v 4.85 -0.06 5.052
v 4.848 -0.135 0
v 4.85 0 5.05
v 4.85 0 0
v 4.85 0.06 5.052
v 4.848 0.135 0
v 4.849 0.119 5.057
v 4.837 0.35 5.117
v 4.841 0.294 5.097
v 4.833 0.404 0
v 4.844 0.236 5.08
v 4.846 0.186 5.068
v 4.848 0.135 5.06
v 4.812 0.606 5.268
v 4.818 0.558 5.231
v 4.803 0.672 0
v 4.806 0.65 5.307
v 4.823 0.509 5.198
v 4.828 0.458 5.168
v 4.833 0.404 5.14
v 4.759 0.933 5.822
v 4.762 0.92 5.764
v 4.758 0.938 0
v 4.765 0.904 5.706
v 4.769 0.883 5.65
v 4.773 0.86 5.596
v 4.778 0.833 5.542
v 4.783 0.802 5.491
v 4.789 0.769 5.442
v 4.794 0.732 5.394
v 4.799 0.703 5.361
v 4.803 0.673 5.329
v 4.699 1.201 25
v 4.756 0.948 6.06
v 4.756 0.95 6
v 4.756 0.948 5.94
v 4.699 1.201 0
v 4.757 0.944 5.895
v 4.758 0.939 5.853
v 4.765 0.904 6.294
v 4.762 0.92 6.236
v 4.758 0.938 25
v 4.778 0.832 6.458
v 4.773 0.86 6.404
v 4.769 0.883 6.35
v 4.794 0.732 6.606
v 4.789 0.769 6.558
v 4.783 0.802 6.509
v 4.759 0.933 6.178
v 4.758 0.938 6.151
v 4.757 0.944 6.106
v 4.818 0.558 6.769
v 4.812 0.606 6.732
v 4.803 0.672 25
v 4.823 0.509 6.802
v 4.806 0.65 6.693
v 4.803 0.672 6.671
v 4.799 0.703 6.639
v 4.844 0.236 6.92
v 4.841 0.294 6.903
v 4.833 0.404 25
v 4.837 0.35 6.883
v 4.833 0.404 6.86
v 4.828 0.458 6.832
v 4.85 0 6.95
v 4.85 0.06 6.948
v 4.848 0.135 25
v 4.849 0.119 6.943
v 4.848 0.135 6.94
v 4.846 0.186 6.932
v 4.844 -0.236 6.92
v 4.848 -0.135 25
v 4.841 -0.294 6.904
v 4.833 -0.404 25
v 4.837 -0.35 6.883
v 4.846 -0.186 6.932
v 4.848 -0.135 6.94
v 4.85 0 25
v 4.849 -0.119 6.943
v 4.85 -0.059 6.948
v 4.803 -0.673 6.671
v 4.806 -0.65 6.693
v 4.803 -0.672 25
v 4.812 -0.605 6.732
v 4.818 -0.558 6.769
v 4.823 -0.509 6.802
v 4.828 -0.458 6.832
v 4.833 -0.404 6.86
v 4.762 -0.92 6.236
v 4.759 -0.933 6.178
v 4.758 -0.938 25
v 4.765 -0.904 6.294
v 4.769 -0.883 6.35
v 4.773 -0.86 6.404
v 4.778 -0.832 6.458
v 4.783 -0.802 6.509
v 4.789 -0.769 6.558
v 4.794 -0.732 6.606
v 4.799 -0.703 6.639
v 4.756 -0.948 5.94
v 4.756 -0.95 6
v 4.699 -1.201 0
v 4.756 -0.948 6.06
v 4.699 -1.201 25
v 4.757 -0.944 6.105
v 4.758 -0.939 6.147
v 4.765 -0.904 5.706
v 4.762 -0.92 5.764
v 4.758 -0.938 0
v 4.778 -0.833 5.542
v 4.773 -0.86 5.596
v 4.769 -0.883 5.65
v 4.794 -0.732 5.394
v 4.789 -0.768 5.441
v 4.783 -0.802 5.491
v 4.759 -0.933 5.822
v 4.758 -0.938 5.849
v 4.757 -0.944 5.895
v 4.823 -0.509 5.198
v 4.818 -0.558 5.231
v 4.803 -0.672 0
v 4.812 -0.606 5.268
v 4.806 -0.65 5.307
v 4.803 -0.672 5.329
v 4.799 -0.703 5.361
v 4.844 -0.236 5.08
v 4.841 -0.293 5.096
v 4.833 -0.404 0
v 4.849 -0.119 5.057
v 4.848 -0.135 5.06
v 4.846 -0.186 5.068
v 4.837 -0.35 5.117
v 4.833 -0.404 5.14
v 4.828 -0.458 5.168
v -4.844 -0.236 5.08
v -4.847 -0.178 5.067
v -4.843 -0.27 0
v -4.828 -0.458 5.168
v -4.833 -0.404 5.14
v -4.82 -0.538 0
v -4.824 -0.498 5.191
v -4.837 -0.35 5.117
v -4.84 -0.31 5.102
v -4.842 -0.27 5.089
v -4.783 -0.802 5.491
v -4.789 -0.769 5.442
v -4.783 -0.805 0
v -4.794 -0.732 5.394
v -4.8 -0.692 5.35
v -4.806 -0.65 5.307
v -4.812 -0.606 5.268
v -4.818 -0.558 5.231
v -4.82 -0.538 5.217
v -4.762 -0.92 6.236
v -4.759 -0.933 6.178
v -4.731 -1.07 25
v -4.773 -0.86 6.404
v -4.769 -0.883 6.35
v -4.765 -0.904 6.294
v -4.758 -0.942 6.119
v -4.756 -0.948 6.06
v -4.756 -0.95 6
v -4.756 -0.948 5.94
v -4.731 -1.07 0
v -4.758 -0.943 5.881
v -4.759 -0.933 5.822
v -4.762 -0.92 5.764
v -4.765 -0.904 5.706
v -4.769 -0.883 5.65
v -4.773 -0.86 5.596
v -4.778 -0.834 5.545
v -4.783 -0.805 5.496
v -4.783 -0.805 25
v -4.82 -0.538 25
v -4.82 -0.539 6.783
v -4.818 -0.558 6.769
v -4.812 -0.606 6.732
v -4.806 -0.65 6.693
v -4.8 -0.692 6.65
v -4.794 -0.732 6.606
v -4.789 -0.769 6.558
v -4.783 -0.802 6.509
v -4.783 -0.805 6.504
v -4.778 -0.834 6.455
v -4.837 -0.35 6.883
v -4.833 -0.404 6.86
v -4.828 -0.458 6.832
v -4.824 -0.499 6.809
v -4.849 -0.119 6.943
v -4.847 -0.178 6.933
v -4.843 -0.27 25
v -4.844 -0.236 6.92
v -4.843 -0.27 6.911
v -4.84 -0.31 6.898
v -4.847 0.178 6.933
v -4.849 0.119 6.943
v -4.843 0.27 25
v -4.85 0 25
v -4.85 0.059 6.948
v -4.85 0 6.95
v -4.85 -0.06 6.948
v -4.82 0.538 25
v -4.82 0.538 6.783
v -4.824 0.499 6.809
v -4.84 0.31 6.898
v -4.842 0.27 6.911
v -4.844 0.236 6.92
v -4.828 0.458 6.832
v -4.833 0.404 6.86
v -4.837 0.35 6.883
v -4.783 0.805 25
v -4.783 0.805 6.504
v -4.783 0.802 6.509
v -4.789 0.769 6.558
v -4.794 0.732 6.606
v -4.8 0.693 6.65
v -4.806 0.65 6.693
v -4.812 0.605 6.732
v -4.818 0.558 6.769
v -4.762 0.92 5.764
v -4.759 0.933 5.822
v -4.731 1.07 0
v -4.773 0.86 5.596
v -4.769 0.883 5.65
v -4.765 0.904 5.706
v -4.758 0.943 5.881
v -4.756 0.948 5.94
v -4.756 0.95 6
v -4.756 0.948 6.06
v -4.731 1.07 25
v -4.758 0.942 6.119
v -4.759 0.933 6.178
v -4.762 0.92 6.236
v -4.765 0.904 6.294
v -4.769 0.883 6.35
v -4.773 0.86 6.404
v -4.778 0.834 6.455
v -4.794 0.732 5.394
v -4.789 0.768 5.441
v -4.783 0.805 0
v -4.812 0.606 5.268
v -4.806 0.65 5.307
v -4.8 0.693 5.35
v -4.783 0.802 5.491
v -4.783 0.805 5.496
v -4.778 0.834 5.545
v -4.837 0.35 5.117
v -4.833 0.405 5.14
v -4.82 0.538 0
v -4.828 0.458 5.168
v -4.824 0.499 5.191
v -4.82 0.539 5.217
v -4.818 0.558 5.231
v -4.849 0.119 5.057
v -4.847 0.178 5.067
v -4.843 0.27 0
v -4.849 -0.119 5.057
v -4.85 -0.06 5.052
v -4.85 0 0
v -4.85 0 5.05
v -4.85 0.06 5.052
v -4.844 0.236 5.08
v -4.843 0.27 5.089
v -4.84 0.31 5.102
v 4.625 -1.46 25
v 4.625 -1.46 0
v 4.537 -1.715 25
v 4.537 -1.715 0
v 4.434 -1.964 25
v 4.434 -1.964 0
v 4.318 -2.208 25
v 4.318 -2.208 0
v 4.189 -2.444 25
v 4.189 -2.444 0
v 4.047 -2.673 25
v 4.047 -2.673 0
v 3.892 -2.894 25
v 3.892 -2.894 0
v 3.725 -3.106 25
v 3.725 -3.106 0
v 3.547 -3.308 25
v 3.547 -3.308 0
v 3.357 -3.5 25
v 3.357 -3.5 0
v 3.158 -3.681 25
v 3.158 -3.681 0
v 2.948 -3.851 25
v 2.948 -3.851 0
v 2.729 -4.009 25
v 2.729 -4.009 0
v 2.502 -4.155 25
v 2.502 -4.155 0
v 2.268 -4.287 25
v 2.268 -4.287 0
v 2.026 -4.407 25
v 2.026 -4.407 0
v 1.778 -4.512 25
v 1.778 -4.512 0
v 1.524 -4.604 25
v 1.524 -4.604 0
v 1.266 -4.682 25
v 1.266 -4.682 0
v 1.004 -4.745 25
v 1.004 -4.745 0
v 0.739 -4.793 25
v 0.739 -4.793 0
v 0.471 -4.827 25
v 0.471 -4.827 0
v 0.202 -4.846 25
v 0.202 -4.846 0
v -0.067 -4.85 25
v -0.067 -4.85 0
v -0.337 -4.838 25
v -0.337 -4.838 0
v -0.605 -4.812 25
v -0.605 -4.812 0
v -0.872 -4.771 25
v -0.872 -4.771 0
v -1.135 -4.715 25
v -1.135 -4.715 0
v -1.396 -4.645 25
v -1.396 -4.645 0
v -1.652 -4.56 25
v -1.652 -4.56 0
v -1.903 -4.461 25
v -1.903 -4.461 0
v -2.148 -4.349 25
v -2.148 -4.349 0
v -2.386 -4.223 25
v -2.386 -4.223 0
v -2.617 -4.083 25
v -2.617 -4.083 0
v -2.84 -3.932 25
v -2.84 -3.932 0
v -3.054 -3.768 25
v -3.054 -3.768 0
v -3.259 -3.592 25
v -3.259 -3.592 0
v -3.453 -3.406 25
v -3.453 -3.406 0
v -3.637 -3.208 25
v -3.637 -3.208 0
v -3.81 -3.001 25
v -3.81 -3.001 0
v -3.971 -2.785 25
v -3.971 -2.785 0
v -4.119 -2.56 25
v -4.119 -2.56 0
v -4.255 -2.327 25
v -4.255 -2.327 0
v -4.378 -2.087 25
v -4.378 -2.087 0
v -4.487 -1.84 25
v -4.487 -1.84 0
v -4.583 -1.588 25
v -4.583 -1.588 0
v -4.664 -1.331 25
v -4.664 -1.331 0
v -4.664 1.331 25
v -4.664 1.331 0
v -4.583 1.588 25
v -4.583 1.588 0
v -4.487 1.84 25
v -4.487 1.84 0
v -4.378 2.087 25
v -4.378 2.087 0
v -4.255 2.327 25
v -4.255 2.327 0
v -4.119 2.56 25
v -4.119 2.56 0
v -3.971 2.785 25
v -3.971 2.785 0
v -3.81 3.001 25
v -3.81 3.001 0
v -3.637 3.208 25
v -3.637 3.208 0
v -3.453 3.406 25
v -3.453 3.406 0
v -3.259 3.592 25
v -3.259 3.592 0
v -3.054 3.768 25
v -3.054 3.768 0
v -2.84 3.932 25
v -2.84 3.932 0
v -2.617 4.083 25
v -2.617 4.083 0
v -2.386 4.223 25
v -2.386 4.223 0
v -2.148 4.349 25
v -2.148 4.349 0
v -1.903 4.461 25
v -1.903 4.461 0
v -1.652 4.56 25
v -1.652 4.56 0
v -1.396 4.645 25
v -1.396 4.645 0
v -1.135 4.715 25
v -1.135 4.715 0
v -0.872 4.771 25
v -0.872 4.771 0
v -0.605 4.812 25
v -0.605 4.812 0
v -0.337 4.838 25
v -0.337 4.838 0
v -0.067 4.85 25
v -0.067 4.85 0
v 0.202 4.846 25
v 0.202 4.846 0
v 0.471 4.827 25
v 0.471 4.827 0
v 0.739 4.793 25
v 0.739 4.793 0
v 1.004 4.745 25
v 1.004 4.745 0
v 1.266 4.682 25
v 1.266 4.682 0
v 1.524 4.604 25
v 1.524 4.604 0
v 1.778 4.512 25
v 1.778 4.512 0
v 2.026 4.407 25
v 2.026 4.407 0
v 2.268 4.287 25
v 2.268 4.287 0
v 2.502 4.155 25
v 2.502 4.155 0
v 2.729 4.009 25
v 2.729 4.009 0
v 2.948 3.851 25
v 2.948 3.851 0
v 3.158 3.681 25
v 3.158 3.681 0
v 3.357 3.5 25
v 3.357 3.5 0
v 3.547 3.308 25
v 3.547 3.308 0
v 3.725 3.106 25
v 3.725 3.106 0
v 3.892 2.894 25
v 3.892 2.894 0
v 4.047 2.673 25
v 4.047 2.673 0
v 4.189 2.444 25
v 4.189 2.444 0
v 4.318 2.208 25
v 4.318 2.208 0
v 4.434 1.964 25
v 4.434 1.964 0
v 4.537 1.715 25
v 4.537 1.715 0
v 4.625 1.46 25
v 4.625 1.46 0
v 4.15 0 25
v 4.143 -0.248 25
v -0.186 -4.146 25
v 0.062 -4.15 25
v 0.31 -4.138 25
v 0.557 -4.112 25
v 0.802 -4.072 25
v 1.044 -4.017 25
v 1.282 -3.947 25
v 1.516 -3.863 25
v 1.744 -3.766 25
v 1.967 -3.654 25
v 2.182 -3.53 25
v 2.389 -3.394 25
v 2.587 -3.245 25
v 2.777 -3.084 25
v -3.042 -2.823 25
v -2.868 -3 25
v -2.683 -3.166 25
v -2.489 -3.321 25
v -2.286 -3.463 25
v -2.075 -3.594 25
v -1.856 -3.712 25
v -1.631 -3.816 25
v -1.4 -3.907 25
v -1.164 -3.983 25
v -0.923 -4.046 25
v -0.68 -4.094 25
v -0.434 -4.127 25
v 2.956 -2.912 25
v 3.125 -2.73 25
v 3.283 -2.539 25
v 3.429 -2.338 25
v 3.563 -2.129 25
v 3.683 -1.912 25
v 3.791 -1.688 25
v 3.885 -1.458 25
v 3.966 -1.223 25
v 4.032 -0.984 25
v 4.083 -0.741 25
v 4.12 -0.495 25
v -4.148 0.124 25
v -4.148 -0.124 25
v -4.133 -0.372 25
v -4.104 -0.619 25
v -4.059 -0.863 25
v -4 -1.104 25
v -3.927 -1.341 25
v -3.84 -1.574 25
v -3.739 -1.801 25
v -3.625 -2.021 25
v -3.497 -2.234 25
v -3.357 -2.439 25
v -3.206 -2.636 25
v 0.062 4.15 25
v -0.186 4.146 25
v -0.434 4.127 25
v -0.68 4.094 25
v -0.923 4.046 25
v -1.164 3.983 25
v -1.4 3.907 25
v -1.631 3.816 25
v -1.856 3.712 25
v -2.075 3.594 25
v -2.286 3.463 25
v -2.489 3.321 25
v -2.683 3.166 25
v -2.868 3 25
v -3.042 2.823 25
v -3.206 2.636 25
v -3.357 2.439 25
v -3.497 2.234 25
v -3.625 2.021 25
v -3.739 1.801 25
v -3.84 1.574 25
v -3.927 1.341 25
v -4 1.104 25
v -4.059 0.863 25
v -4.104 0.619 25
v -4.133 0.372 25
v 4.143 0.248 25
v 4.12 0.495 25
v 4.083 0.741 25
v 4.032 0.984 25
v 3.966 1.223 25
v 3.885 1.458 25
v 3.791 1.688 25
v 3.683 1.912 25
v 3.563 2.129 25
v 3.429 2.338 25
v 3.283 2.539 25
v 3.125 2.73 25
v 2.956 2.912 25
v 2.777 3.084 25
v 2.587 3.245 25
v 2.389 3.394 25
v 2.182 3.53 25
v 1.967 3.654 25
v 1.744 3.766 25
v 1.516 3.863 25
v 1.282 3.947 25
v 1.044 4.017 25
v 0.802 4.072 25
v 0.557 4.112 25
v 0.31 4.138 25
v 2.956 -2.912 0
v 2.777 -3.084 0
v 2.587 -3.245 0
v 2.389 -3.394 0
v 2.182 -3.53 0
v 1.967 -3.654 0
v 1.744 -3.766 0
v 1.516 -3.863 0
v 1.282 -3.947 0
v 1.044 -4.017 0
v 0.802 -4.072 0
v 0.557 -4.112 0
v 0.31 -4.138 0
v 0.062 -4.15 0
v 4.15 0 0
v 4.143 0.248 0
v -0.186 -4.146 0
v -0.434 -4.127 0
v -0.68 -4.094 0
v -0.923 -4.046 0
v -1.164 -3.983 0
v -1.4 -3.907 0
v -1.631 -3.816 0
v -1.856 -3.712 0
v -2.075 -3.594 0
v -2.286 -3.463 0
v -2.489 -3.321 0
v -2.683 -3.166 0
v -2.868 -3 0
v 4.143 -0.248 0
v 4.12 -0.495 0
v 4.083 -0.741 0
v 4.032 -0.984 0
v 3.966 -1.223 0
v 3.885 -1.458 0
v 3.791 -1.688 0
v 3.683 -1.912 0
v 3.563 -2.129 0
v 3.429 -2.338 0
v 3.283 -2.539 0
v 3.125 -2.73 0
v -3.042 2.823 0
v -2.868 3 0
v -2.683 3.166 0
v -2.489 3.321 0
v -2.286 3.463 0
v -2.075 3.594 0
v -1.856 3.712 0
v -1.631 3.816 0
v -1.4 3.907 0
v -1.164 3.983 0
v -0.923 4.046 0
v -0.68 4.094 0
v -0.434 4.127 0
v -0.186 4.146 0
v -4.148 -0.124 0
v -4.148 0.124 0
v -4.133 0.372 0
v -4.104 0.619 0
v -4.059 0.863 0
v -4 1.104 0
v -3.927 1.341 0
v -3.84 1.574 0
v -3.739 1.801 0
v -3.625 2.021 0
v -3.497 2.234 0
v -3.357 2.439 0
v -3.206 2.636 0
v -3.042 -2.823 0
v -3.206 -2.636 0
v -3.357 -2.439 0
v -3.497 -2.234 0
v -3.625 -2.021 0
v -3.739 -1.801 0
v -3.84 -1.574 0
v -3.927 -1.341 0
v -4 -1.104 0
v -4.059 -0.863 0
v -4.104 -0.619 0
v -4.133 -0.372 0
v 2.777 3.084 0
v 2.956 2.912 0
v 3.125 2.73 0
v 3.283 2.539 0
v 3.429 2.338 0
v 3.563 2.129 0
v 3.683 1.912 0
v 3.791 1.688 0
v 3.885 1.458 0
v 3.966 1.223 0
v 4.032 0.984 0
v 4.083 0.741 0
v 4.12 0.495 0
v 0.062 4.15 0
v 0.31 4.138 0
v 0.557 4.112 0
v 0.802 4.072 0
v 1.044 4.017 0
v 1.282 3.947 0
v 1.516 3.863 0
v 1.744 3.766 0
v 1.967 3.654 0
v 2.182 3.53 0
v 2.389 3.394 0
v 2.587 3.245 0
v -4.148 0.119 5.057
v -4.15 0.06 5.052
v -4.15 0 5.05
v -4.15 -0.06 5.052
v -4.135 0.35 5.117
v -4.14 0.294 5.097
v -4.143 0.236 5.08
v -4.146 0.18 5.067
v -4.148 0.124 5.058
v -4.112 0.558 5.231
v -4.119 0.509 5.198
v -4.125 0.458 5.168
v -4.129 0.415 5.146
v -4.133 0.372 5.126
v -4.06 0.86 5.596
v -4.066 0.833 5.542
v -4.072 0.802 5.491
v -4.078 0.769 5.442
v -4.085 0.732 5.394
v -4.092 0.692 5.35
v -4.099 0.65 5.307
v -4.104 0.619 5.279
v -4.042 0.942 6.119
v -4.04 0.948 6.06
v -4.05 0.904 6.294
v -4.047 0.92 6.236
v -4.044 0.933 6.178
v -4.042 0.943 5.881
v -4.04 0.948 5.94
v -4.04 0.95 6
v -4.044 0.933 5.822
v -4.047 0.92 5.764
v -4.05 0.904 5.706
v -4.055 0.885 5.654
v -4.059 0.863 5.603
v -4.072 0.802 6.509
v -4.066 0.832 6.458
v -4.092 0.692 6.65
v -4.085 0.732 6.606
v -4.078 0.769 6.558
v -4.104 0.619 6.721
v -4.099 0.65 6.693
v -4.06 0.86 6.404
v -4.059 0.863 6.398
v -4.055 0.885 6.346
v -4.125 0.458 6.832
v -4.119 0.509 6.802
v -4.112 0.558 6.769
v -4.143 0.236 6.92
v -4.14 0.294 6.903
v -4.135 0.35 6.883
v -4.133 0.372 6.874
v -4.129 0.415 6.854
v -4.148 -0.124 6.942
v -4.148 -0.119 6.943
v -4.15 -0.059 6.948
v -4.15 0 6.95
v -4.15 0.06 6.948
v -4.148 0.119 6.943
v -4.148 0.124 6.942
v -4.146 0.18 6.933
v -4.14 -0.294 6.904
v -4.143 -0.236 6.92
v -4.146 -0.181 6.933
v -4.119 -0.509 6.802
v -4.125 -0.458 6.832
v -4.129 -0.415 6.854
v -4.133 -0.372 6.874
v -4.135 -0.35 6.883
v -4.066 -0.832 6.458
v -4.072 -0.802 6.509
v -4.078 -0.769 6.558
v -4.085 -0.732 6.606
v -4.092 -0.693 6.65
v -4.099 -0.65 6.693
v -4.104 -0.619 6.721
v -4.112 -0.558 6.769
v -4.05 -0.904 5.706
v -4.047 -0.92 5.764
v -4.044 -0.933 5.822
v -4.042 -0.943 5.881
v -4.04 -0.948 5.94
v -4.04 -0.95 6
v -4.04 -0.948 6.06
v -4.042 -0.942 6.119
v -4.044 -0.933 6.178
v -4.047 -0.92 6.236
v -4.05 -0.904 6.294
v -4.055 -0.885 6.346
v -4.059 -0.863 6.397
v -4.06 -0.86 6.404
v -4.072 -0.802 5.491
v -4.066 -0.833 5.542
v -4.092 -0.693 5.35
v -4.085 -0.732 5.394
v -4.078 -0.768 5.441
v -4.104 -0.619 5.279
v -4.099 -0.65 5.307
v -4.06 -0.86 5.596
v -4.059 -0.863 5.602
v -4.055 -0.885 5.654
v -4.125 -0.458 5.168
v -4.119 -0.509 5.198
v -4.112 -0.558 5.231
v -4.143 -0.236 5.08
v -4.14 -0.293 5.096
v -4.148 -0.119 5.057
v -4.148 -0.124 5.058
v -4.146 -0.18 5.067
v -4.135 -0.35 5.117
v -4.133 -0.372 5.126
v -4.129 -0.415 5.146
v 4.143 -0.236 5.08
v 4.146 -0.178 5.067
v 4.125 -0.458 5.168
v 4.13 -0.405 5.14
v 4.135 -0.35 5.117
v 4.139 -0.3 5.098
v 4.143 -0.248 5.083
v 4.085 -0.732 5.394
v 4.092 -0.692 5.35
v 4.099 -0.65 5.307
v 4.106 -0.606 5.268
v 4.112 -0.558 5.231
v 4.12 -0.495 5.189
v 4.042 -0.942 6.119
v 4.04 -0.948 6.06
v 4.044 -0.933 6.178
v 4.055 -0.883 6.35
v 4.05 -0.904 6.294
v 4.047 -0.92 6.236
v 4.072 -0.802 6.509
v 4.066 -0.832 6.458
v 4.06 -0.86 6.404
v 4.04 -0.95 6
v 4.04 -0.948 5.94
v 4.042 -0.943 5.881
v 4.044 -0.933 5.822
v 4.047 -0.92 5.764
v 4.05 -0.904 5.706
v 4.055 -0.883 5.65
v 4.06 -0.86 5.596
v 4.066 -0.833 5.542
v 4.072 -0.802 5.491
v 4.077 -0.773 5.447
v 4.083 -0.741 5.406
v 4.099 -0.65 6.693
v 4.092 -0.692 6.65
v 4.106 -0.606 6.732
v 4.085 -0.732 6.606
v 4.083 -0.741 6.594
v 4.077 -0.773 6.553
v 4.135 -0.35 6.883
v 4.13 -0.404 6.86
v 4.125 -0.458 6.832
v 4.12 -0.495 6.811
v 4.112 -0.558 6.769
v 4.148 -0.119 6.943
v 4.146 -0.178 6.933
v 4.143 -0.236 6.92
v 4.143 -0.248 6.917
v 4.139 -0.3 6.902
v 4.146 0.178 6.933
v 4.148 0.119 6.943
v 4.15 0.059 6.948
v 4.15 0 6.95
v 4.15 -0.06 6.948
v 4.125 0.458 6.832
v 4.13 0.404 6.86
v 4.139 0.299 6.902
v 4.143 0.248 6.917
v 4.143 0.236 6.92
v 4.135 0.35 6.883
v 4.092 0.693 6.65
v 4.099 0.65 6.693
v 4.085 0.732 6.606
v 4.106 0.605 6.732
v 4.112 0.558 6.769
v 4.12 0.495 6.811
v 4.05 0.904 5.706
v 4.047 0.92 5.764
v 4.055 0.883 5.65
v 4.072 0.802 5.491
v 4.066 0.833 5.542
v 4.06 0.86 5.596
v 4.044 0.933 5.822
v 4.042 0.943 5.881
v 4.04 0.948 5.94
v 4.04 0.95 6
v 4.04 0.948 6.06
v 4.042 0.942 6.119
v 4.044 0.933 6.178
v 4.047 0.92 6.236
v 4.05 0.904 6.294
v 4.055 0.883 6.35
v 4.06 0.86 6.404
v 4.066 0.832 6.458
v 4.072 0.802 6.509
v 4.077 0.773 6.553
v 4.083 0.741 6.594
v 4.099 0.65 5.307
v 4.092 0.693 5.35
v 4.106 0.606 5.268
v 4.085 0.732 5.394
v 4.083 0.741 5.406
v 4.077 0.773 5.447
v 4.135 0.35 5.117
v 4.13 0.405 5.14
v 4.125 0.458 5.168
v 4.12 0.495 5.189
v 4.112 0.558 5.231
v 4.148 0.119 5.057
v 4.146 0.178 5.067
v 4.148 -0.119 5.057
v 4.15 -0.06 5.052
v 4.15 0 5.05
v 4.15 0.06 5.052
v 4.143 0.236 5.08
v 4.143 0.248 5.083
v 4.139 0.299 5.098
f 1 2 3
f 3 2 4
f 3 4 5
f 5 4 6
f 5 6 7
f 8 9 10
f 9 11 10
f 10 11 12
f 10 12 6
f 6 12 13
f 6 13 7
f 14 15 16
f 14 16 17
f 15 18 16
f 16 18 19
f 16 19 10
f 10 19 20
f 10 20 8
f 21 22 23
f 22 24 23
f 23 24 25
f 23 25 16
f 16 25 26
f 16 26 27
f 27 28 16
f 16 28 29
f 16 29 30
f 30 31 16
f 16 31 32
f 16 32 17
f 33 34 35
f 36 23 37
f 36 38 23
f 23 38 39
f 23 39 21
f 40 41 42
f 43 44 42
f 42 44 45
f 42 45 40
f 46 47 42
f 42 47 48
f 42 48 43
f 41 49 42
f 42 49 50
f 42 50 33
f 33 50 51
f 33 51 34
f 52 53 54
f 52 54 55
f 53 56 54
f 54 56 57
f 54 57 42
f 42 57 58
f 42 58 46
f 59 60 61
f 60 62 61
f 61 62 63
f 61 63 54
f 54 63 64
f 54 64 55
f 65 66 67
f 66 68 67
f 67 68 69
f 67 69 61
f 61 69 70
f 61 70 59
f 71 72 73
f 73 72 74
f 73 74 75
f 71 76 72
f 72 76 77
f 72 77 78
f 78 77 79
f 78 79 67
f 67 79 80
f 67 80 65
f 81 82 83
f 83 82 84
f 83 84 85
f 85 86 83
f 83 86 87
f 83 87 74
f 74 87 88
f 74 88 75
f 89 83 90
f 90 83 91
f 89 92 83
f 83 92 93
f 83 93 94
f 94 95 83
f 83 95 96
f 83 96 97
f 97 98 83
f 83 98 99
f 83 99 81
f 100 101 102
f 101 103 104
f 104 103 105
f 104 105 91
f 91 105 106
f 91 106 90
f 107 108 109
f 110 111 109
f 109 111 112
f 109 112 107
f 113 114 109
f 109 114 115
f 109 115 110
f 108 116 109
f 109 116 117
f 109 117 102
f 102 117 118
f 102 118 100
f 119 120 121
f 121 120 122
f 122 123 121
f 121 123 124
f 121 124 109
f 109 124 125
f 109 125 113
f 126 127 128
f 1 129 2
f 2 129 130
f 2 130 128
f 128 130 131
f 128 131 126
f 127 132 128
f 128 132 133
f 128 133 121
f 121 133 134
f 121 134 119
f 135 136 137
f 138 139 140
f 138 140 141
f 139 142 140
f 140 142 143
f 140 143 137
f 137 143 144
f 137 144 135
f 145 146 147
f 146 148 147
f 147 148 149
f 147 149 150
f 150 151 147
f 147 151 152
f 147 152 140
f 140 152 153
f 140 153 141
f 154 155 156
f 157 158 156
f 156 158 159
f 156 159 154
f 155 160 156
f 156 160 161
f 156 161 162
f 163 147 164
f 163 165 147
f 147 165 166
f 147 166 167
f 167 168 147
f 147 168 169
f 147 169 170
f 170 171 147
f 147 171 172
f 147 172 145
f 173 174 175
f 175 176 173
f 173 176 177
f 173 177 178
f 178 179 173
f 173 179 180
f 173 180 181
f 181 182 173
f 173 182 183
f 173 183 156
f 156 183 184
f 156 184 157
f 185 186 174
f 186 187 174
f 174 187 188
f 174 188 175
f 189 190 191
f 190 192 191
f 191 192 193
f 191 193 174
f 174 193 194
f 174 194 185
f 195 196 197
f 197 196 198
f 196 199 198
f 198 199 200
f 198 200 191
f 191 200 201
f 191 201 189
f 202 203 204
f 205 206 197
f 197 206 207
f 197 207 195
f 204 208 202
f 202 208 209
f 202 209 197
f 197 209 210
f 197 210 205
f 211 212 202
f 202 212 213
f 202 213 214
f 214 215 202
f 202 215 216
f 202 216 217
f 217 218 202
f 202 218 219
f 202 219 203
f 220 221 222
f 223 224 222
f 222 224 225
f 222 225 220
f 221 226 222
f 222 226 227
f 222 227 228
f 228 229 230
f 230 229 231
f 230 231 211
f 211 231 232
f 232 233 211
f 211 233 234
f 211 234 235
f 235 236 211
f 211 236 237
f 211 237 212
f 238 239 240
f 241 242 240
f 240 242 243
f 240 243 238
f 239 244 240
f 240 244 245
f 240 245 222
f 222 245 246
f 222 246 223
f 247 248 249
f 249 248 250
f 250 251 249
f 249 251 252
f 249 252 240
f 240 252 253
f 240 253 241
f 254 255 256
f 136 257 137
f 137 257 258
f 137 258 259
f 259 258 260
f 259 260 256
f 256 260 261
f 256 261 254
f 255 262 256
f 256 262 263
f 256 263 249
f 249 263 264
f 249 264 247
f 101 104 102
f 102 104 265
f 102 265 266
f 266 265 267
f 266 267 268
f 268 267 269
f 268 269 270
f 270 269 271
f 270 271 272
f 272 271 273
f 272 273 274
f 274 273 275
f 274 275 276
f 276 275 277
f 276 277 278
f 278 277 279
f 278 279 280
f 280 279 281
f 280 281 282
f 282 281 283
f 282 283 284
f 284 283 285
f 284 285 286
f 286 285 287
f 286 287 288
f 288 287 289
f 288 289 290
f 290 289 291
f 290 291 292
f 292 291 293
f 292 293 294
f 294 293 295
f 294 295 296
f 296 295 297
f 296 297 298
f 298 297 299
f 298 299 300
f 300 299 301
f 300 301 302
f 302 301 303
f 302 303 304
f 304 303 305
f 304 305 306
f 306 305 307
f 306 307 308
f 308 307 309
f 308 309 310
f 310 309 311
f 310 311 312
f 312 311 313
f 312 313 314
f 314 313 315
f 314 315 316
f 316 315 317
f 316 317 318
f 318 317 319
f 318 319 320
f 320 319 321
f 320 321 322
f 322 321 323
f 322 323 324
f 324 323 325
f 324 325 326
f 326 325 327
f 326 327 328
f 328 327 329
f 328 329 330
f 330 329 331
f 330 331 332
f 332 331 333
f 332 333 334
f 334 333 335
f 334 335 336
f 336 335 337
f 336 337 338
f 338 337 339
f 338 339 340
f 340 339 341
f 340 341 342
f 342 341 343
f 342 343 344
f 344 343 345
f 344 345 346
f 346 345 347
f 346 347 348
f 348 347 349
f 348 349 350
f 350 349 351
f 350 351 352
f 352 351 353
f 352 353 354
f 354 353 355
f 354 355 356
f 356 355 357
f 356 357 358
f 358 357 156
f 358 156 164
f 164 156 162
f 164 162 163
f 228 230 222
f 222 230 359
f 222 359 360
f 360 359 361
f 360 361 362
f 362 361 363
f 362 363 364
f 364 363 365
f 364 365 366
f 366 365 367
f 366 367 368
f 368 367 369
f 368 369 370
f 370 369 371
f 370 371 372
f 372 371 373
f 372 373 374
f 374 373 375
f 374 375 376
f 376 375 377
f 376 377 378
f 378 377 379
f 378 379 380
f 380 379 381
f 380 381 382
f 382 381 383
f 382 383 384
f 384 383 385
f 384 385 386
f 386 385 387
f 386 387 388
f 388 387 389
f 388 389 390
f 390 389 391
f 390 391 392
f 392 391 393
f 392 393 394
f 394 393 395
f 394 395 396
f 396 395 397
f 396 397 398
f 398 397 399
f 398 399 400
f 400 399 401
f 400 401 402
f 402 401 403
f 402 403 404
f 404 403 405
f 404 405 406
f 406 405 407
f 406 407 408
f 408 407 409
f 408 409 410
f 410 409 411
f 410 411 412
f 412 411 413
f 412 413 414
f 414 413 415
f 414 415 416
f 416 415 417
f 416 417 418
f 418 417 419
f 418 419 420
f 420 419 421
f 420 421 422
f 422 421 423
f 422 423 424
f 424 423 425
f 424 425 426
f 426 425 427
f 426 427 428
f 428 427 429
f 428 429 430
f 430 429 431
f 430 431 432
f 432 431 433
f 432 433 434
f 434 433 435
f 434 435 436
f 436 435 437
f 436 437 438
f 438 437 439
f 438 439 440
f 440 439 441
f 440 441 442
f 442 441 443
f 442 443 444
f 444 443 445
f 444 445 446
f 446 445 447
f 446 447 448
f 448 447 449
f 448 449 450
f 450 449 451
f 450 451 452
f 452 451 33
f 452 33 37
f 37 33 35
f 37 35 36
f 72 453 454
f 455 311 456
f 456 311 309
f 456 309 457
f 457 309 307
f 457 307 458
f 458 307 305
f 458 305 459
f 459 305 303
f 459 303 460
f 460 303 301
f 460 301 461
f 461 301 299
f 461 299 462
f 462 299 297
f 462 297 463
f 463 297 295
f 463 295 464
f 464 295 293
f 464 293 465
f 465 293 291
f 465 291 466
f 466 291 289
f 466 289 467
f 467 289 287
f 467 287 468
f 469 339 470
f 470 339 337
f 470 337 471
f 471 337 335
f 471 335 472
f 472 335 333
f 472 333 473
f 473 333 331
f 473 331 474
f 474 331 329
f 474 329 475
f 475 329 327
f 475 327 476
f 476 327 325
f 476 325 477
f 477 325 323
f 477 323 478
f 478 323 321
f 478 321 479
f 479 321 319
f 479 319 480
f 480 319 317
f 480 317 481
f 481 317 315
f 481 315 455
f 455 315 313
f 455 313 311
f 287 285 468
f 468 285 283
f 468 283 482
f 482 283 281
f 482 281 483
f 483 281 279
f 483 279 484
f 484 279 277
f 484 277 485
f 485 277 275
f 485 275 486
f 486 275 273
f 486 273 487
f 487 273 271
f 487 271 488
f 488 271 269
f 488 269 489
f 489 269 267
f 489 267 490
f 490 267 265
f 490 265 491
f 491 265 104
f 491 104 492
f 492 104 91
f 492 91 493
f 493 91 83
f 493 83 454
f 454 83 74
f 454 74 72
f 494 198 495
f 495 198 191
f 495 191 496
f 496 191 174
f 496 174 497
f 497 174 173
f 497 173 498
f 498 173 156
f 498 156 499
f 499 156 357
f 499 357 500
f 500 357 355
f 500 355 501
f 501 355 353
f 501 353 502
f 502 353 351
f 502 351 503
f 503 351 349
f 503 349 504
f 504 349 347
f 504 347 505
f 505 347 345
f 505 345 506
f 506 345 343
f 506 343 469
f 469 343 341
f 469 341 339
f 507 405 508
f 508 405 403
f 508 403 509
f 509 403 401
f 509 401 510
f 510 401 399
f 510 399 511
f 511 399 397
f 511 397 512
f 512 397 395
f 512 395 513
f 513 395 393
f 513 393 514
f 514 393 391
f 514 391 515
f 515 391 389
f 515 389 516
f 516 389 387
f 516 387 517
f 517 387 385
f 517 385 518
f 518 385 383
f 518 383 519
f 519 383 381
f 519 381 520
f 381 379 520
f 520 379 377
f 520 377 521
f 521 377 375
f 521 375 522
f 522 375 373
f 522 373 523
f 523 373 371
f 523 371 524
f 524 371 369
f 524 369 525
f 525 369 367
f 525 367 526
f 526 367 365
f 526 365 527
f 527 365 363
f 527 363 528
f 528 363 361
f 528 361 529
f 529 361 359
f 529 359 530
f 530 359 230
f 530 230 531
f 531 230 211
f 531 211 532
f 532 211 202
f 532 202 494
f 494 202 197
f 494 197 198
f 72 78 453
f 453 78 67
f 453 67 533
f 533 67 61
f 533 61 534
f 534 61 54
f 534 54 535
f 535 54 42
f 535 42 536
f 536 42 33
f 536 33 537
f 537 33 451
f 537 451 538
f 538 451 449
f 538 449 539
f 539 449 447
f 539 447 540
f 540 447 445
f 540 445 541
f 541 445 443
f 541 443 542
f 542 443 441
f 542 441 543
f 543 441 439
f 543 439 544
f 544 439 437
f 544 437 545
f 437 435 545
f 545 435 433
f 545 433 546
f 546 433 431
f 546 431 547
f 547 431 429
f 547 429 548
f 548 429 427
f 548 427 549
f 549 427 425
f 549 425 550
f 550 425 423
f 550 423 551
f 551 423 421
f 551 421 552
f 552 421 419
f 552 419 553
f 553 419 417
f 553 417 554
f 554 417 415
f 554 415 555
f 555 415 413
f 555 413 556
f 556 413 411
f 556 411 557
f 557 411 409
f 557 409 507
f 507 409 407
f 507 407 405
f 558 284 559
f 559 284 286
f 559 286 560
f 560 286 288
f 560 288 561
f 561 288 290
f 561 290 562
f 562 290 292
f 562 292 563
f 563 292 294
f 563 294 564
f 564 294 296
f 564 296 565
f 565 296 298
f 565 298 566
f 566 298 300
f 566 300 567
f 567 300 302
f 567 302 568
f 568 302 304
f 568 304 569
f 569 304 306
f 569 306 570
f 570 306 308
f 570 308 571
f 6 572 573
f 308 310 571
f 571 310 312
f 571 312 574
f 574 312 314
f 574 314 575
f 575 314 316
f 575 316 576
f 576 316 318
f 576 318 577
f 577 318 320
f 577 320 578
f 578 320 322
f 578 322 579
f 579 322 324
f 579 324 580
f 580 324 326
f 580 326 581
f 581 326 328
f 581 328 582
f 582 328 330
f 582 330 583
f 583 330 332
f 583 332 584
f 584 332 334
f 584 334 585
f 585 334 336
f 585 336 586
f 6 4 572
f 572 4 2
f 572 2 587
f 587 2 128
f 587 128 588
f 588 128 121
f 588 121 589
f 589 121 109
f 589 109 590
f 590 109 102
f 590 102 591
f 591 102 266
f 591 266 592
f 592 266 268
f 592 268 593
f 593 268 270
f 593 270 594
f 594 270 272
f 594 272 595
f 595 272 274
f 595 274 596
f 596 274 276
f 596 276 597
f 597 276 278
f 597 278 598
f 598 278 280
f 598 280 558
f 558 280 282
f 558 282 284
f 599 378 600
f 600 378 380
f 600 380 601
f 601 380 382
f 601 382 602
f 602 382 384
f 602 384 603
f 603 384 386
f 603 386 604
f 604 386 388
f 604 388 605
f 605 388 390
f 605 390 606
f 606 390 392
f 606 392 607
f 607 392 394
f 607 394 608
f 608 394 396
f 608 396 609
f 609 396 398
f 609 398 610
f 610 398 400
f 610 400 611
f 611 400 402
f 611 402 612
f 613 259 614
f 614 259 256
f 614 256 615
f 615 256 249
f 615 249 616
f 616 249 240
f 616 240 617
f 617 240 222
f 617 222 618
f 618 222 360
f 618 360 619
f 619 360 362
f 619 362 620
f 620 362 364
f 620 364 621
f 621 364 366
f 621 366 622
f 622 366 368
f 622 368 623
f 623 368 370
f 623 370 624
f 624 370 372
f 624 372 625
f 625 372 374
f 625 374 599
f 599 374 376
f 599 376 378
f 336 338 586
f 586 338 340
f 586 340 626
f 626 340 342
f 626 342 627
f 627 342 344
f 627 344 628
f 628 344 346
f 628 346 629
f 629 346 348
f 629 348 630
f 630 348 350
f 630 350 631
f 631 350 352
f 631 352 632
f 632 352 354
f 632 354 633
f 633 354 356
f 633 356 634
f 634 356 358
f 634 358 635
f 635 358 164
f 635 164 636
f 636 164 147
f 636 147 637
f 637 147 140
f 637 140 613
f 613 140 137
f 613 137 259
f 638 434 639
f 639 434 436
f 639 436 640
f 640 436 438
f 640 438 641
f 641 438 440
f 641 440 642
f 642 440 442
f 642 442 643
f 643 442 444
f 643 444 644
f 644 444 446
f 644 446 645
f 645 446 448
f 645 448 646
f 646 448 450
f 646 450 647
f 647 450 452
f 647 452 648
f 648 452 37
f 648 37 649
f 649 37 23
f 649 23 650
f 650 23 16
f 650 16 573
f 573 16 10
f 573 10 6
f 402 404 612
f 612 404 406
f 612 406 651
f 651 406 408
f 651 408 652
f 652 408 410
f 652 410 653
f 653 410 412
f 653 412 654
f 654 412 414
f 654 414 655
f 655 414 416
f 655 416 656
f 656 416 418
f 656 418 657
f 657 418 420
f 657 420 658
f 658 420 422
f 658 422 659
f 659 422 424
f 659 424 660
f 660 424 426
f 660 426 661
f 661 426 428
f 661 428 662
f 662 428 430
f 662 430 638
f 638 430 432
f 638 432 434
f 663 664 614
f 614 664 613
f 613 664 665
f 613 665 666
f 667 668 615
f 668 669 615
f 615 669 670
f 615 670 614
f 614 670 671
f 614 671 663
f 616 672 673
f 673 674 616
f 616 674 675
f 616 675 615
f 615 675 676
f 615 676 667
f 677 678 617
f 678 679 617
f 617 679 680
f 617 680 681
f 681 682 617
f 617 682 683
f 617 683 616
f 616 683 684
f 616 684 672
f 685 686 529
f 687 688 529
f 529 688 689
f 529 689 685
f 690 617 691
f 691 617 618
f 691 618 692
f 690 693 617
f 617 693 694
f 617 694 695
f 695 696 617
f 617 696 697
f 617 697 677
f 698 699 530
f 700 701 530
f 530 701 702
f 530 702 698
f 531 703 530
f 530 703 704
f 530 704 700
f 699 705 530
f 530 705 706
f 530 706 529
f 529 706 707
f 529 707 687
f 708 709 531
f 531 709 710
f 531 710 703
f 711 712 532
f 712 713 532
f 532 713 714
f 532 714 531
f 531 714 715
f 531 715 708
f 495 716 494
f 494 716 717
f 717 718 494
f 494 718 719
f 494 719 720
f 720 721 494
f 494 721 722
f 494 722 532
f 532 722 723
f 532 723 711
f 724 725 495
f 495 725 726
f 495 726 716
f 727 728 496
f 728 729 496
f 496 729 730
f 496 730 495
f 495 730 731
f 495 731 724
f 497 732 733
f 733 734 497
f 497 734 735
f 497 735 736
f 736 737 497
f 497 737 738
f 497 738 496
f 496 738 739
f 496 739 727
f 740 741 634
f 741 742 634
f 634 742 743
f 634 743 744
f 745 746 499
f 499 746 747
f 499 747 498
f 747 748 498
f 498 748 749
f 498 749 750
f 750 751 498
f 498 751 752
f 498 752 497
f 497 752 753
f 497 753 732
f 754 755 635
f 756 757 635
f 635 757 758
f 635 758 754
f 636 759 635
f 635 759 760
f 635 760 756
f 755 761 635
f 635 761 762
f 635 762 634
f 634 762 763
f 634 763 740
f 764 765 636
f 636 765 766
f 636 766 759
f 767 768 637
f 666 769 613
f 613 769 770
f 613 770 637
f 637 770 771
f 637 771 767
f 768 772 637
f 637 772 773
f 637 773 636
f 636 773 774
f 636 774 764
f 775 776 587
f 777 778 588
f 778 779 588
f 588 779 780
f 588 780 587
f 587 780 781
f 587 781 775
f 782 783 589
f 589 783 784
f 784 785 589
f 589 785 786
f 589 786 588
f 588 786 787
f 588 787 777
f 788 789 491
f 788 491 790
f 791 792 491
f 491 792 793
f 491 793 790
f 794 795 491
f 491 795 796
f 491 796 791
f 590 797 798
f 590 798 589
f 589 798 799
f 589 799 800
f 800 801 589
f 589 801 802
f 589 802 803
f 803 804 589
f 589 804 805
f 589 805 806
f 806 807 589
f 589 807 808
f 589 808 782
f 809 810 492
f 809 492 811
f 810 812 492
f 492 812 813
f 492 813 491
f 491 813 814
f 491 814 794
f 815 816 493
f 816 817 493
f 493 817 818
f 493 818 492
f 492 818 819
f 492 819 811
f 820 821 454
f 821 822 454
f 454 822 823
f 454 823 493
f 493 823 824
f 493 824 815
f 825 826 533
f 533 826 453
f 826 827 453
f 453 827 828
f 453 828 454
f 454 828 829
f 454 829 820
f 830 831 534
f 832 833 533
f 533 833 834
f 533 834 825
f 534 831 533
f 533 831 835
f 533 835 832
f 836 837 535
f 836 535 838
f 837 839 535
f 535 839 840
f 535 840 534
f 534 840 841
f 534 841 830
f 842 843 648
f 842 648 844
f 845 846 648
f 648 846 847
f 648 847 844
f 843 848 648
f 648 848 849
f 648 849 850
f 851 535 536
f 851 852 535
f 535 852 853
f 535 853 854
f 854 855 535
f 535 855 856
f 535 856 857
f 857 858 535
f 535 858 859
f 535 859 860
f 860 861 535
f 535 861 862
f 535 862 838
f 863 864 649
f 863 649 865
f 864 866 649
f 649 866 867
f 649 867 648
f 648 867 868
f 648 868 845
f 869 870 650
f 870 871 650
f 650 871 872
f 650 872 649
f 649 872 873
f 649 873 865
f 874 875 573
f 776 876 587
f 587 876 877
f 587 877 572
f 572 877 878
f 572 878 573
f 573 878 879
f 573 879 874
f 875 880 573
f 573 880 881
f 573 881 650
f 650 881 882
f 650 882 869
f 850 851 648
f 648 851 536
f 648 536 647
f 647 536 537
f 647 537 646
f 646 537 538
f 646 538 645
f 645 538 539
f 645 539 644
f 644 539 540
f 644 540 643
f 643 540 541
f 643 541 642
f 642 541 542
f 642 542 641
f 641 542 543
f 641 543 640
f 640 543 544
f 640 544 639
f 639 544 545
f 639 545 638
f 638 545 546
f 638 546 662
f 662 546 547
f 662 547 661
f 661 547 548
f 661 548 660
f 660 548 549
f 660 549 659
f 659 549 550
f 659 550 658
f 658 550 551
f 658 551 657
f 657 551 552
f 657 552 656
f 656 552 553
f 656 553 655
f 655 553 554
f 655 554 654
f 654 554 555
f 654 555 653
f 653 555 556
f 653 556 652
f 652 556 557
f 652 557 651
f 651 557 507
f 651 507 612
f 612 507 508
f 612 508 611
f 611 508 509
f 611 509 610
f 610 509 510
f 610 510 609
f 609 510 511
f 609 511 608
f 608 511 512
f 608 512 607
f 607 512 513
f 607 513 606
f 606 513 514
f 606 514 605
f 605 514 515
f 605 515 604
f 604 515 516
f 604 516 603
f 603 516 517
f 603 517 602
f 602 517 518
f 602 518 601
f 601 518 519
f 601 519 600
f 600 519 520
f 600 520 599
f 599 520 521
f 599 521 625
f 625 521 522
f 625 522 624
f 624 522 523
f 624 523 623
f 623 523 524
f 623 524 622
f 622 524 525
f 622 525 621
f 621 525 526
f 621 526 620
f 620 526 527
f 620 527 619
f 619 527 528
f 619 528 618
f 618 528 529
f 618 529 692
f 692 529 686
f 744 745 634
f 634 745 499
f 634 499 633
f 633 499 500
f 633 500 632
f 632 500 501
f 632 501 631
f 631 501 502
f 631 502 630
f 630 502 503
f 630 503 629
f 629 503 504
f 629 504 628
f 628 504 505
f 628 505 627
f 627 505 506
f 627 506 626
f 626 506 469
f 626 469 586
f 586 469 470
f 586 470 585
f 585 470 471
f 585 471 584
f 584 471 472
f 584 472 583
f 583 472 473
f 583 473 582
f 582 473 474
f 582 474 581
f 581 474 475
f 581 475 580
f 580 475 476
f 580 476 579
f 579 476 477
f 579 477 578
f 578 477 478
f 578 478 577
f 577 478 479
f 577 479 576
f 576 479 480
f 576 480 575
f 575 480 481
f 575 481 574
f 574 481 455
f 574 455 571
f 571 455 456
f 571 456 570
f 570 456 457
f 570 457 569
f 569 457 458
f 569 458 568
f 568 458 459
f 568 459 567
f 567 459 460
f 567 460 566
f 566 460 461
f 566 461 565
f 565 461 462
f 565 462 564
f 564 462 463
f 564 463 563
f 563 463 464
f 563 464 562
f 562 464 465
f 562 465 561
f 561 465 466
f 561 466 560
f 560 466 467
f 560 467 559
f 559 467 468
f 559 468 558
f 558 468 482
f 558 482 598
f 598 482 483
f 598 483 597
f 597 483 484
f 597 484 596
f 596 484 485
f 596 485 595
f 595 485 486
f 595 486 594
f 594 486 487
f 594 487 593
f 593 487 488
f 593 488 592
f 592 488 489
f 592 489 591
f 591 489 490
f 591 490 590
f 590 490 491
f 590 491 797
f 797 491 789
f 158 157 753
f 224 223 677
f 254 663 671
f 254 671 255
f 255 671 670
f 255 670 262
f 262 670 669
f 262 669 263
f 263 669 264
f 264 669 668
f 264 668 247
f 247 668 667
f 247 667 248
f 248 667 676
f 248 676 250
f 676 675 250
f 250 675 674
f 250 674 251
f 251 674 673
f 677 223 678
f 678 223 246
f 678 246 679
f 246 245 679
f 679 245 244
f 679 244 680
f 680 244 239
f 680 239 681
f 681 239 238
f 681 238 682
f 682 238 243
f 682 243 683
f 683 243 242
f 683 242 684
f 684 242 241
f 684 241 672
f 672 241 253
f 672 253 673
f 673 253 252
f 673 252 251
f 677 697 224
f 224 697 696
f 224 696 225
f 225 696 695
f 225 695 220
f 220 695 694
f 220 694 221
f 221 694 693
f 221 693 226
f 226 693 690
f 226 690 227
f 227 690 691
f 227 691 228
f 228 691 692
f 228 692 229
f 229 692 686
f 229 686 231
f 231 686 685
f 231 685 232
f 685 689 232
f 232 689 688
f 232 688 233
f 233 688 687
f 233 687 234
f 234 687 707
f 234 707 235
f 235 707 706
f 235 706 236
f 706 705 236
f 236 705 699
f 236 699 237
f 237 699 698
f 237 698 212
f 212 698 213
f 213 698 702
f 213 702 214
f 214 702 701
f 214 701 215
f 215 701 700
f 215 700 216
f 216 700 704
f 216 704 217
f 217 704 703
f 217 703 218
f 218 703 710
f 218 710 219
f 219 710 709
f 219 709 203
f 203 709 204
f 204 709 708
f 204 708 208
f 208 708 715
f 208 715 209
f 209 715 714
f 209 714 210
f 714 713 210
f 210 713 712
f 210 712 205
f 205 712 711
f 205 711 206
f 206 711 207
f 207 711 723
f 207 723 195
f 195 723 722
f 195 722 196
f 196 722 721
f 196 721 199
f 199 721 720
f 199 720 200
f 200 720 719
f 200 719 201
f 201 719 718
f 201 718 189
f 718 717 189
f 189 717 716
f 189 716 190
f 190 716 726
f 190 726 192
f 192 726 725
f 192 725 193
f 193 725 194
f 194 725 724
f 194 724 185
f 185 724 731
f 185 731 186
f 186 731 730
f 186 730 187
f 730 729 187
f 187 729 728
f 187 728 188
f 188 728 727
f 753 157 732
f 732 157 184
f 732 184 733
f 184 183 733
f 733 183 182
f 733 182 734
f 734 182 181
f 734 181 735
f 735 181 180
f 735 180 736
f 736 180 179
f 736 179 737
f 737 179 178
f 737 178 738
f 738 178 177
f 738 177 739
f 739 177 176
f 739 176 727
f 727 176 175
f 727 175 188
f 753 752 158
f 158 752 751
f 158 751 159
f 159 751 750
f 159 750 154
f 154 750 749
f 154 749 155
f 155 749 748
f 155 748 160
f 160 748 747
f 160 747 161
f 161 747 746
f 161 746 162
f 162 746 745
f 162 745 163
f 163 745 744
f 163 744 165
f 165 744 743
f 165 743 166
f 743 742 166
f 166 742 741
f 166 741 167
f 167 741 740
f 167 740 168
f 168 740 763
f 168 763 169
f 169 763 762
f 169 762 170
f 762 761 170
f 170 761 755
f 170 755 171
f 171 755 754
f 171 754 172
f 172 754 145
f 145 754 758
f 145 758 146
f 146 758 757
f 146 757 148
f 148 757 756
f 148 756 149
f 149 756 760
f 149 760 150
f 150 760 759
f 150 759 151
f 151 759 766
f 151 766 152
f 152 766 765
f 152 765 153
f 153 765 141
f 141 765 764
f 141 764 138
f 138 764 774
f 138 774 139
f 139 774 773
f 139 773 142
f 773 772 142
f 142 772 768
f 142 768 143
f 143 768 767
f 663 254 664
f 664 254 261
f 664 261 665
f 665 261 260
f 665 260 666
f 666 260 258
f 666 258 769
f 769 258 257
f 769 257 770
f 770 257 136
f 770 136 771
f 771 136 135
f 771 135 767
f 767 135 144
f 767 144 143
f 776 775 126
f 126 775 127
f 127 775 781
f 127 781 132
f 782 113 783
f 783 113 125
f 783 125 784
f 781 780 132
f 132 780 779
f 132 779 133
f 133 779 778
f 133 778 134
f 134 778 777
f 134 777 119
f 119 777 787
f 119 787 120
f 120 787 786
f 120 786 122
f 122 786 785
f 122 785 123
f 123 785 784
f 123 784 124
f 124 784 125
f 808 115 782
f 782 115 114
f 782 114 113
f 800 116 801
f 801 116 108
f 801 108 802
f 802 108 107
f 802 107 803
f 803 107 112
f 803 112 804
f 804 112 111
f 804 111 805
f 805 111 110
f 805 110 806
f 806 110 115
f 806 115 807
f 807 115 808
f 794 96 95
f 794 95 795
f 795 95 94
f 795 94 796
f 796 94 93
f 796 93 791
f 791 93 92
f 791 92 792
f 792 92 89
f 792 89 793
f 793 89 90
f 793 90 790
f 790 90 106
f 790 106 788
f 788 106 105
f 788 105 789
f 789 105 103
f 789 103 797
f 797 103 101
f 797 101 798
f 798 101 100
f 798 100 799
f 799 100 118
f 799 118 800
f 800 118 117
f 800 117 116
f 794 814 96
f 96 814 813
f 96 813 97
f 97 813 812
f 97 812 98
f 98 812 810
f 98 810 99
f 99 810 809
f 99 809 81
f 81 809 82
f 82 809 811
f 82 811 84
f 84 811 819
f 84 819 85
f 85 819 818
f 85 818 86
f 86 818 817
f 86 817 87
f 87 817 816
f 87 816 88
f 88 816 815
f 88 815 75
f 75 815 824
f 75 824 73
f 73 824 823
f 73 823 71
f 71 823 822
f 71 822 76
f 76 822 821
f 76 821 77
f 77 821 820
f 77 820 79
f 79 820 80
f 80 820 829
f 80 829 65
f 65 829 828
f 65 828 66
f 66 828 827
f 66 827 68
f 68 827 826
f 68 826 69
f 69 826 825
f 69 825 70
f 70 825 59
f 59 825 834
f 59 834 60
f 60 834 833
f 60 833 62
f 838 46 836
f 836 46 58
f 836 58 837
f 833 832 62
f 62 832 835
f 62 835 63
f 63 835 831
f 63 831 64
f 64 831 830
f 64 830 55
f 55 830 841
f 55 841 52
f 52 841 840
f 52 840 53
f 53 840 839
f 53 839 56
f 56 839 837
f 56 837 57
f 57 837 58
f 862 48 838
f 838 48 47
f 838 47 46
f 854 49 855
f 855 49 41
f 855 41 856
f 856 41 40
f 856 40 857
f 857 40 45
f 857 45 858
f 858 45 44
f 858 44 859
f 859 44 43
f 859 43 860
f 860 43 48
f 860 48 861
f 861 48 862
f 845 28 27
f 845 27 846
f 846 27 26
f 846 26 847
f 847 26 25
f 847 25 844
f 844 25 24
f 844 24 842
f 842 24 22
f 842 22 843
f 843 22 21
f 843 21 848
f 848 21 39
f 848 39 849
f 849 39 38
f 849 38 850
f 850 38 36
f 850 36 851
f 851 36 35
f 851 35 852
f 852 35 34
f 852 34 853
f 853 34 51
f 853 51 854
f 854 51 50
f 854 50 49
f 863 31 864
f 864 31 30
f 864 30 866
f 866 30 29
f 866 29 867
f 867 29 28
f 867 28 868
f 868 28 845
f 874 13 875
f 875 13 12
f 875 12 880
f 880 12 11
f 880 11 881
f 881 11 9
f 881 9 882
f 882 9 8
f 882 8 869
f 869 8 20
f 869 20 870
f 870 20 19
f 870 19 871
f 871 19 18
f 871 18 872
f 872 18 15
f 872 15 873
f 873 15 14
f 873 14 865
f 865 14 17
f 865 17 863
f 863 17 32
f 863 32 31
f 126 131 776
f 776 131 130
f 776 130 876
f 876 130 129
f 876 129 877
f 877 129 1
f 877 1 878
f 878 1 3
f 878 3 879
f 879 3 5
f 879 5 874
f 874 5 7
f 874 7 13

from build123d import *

# Parameters (mm, degrees)
SKETCH1_R               = 4.85
BOSS_EXTRUDE1_DEPTH     = 25
SKETCH2_R               = 4.15
CUT_EXTRUDE1_DEPTH      = 26
SKETCH3_R               = 0.95
CUT_EXTRUDE2_DEPTH      = 5.85
CUT_EXTRUDE2_DEPTH_BACK = 5.85


with BuildPart() as part:
    # Sketch1 → Boss-Extrude1 (new body)
    with BuildSketch(Plane.XY):
        Circle(SKETCH1_R)
    extrude(amount=BOSS_EXTRUDE1_DEPTH)

    # Sketch2 → Cut-Extrude1 (cut, through all)
    with BuildSketch(Plane.XY.offset(25)):
        Circle(SKETCH2_R)
    extrude(amount=-CUT_EXTRUDE1_DEPTH, mode=Mode.SUBTRACT)

    # Sketch3 → Cut-Extrude2 (cut, two sides)
    with BuildSketch(Plane(origin=(0, 0, 0), x_dir=(0, 0, -1), z_dir=(1, 0, 0))) as cut_extrude2_sk:
        with Locations((-6, 0)):
            Circle(SKETCH3_R)
    extrude(amount=CUT_EXTRUDE2_DEPTH, mode=Mode.SUBTRACT)
    extrude(cut_extrude2_sk.sketch, amount=-CUT_EXTRUDE2_DEPTH_BACK, mode=Mode.SUBTRACT)


solid = part.part
